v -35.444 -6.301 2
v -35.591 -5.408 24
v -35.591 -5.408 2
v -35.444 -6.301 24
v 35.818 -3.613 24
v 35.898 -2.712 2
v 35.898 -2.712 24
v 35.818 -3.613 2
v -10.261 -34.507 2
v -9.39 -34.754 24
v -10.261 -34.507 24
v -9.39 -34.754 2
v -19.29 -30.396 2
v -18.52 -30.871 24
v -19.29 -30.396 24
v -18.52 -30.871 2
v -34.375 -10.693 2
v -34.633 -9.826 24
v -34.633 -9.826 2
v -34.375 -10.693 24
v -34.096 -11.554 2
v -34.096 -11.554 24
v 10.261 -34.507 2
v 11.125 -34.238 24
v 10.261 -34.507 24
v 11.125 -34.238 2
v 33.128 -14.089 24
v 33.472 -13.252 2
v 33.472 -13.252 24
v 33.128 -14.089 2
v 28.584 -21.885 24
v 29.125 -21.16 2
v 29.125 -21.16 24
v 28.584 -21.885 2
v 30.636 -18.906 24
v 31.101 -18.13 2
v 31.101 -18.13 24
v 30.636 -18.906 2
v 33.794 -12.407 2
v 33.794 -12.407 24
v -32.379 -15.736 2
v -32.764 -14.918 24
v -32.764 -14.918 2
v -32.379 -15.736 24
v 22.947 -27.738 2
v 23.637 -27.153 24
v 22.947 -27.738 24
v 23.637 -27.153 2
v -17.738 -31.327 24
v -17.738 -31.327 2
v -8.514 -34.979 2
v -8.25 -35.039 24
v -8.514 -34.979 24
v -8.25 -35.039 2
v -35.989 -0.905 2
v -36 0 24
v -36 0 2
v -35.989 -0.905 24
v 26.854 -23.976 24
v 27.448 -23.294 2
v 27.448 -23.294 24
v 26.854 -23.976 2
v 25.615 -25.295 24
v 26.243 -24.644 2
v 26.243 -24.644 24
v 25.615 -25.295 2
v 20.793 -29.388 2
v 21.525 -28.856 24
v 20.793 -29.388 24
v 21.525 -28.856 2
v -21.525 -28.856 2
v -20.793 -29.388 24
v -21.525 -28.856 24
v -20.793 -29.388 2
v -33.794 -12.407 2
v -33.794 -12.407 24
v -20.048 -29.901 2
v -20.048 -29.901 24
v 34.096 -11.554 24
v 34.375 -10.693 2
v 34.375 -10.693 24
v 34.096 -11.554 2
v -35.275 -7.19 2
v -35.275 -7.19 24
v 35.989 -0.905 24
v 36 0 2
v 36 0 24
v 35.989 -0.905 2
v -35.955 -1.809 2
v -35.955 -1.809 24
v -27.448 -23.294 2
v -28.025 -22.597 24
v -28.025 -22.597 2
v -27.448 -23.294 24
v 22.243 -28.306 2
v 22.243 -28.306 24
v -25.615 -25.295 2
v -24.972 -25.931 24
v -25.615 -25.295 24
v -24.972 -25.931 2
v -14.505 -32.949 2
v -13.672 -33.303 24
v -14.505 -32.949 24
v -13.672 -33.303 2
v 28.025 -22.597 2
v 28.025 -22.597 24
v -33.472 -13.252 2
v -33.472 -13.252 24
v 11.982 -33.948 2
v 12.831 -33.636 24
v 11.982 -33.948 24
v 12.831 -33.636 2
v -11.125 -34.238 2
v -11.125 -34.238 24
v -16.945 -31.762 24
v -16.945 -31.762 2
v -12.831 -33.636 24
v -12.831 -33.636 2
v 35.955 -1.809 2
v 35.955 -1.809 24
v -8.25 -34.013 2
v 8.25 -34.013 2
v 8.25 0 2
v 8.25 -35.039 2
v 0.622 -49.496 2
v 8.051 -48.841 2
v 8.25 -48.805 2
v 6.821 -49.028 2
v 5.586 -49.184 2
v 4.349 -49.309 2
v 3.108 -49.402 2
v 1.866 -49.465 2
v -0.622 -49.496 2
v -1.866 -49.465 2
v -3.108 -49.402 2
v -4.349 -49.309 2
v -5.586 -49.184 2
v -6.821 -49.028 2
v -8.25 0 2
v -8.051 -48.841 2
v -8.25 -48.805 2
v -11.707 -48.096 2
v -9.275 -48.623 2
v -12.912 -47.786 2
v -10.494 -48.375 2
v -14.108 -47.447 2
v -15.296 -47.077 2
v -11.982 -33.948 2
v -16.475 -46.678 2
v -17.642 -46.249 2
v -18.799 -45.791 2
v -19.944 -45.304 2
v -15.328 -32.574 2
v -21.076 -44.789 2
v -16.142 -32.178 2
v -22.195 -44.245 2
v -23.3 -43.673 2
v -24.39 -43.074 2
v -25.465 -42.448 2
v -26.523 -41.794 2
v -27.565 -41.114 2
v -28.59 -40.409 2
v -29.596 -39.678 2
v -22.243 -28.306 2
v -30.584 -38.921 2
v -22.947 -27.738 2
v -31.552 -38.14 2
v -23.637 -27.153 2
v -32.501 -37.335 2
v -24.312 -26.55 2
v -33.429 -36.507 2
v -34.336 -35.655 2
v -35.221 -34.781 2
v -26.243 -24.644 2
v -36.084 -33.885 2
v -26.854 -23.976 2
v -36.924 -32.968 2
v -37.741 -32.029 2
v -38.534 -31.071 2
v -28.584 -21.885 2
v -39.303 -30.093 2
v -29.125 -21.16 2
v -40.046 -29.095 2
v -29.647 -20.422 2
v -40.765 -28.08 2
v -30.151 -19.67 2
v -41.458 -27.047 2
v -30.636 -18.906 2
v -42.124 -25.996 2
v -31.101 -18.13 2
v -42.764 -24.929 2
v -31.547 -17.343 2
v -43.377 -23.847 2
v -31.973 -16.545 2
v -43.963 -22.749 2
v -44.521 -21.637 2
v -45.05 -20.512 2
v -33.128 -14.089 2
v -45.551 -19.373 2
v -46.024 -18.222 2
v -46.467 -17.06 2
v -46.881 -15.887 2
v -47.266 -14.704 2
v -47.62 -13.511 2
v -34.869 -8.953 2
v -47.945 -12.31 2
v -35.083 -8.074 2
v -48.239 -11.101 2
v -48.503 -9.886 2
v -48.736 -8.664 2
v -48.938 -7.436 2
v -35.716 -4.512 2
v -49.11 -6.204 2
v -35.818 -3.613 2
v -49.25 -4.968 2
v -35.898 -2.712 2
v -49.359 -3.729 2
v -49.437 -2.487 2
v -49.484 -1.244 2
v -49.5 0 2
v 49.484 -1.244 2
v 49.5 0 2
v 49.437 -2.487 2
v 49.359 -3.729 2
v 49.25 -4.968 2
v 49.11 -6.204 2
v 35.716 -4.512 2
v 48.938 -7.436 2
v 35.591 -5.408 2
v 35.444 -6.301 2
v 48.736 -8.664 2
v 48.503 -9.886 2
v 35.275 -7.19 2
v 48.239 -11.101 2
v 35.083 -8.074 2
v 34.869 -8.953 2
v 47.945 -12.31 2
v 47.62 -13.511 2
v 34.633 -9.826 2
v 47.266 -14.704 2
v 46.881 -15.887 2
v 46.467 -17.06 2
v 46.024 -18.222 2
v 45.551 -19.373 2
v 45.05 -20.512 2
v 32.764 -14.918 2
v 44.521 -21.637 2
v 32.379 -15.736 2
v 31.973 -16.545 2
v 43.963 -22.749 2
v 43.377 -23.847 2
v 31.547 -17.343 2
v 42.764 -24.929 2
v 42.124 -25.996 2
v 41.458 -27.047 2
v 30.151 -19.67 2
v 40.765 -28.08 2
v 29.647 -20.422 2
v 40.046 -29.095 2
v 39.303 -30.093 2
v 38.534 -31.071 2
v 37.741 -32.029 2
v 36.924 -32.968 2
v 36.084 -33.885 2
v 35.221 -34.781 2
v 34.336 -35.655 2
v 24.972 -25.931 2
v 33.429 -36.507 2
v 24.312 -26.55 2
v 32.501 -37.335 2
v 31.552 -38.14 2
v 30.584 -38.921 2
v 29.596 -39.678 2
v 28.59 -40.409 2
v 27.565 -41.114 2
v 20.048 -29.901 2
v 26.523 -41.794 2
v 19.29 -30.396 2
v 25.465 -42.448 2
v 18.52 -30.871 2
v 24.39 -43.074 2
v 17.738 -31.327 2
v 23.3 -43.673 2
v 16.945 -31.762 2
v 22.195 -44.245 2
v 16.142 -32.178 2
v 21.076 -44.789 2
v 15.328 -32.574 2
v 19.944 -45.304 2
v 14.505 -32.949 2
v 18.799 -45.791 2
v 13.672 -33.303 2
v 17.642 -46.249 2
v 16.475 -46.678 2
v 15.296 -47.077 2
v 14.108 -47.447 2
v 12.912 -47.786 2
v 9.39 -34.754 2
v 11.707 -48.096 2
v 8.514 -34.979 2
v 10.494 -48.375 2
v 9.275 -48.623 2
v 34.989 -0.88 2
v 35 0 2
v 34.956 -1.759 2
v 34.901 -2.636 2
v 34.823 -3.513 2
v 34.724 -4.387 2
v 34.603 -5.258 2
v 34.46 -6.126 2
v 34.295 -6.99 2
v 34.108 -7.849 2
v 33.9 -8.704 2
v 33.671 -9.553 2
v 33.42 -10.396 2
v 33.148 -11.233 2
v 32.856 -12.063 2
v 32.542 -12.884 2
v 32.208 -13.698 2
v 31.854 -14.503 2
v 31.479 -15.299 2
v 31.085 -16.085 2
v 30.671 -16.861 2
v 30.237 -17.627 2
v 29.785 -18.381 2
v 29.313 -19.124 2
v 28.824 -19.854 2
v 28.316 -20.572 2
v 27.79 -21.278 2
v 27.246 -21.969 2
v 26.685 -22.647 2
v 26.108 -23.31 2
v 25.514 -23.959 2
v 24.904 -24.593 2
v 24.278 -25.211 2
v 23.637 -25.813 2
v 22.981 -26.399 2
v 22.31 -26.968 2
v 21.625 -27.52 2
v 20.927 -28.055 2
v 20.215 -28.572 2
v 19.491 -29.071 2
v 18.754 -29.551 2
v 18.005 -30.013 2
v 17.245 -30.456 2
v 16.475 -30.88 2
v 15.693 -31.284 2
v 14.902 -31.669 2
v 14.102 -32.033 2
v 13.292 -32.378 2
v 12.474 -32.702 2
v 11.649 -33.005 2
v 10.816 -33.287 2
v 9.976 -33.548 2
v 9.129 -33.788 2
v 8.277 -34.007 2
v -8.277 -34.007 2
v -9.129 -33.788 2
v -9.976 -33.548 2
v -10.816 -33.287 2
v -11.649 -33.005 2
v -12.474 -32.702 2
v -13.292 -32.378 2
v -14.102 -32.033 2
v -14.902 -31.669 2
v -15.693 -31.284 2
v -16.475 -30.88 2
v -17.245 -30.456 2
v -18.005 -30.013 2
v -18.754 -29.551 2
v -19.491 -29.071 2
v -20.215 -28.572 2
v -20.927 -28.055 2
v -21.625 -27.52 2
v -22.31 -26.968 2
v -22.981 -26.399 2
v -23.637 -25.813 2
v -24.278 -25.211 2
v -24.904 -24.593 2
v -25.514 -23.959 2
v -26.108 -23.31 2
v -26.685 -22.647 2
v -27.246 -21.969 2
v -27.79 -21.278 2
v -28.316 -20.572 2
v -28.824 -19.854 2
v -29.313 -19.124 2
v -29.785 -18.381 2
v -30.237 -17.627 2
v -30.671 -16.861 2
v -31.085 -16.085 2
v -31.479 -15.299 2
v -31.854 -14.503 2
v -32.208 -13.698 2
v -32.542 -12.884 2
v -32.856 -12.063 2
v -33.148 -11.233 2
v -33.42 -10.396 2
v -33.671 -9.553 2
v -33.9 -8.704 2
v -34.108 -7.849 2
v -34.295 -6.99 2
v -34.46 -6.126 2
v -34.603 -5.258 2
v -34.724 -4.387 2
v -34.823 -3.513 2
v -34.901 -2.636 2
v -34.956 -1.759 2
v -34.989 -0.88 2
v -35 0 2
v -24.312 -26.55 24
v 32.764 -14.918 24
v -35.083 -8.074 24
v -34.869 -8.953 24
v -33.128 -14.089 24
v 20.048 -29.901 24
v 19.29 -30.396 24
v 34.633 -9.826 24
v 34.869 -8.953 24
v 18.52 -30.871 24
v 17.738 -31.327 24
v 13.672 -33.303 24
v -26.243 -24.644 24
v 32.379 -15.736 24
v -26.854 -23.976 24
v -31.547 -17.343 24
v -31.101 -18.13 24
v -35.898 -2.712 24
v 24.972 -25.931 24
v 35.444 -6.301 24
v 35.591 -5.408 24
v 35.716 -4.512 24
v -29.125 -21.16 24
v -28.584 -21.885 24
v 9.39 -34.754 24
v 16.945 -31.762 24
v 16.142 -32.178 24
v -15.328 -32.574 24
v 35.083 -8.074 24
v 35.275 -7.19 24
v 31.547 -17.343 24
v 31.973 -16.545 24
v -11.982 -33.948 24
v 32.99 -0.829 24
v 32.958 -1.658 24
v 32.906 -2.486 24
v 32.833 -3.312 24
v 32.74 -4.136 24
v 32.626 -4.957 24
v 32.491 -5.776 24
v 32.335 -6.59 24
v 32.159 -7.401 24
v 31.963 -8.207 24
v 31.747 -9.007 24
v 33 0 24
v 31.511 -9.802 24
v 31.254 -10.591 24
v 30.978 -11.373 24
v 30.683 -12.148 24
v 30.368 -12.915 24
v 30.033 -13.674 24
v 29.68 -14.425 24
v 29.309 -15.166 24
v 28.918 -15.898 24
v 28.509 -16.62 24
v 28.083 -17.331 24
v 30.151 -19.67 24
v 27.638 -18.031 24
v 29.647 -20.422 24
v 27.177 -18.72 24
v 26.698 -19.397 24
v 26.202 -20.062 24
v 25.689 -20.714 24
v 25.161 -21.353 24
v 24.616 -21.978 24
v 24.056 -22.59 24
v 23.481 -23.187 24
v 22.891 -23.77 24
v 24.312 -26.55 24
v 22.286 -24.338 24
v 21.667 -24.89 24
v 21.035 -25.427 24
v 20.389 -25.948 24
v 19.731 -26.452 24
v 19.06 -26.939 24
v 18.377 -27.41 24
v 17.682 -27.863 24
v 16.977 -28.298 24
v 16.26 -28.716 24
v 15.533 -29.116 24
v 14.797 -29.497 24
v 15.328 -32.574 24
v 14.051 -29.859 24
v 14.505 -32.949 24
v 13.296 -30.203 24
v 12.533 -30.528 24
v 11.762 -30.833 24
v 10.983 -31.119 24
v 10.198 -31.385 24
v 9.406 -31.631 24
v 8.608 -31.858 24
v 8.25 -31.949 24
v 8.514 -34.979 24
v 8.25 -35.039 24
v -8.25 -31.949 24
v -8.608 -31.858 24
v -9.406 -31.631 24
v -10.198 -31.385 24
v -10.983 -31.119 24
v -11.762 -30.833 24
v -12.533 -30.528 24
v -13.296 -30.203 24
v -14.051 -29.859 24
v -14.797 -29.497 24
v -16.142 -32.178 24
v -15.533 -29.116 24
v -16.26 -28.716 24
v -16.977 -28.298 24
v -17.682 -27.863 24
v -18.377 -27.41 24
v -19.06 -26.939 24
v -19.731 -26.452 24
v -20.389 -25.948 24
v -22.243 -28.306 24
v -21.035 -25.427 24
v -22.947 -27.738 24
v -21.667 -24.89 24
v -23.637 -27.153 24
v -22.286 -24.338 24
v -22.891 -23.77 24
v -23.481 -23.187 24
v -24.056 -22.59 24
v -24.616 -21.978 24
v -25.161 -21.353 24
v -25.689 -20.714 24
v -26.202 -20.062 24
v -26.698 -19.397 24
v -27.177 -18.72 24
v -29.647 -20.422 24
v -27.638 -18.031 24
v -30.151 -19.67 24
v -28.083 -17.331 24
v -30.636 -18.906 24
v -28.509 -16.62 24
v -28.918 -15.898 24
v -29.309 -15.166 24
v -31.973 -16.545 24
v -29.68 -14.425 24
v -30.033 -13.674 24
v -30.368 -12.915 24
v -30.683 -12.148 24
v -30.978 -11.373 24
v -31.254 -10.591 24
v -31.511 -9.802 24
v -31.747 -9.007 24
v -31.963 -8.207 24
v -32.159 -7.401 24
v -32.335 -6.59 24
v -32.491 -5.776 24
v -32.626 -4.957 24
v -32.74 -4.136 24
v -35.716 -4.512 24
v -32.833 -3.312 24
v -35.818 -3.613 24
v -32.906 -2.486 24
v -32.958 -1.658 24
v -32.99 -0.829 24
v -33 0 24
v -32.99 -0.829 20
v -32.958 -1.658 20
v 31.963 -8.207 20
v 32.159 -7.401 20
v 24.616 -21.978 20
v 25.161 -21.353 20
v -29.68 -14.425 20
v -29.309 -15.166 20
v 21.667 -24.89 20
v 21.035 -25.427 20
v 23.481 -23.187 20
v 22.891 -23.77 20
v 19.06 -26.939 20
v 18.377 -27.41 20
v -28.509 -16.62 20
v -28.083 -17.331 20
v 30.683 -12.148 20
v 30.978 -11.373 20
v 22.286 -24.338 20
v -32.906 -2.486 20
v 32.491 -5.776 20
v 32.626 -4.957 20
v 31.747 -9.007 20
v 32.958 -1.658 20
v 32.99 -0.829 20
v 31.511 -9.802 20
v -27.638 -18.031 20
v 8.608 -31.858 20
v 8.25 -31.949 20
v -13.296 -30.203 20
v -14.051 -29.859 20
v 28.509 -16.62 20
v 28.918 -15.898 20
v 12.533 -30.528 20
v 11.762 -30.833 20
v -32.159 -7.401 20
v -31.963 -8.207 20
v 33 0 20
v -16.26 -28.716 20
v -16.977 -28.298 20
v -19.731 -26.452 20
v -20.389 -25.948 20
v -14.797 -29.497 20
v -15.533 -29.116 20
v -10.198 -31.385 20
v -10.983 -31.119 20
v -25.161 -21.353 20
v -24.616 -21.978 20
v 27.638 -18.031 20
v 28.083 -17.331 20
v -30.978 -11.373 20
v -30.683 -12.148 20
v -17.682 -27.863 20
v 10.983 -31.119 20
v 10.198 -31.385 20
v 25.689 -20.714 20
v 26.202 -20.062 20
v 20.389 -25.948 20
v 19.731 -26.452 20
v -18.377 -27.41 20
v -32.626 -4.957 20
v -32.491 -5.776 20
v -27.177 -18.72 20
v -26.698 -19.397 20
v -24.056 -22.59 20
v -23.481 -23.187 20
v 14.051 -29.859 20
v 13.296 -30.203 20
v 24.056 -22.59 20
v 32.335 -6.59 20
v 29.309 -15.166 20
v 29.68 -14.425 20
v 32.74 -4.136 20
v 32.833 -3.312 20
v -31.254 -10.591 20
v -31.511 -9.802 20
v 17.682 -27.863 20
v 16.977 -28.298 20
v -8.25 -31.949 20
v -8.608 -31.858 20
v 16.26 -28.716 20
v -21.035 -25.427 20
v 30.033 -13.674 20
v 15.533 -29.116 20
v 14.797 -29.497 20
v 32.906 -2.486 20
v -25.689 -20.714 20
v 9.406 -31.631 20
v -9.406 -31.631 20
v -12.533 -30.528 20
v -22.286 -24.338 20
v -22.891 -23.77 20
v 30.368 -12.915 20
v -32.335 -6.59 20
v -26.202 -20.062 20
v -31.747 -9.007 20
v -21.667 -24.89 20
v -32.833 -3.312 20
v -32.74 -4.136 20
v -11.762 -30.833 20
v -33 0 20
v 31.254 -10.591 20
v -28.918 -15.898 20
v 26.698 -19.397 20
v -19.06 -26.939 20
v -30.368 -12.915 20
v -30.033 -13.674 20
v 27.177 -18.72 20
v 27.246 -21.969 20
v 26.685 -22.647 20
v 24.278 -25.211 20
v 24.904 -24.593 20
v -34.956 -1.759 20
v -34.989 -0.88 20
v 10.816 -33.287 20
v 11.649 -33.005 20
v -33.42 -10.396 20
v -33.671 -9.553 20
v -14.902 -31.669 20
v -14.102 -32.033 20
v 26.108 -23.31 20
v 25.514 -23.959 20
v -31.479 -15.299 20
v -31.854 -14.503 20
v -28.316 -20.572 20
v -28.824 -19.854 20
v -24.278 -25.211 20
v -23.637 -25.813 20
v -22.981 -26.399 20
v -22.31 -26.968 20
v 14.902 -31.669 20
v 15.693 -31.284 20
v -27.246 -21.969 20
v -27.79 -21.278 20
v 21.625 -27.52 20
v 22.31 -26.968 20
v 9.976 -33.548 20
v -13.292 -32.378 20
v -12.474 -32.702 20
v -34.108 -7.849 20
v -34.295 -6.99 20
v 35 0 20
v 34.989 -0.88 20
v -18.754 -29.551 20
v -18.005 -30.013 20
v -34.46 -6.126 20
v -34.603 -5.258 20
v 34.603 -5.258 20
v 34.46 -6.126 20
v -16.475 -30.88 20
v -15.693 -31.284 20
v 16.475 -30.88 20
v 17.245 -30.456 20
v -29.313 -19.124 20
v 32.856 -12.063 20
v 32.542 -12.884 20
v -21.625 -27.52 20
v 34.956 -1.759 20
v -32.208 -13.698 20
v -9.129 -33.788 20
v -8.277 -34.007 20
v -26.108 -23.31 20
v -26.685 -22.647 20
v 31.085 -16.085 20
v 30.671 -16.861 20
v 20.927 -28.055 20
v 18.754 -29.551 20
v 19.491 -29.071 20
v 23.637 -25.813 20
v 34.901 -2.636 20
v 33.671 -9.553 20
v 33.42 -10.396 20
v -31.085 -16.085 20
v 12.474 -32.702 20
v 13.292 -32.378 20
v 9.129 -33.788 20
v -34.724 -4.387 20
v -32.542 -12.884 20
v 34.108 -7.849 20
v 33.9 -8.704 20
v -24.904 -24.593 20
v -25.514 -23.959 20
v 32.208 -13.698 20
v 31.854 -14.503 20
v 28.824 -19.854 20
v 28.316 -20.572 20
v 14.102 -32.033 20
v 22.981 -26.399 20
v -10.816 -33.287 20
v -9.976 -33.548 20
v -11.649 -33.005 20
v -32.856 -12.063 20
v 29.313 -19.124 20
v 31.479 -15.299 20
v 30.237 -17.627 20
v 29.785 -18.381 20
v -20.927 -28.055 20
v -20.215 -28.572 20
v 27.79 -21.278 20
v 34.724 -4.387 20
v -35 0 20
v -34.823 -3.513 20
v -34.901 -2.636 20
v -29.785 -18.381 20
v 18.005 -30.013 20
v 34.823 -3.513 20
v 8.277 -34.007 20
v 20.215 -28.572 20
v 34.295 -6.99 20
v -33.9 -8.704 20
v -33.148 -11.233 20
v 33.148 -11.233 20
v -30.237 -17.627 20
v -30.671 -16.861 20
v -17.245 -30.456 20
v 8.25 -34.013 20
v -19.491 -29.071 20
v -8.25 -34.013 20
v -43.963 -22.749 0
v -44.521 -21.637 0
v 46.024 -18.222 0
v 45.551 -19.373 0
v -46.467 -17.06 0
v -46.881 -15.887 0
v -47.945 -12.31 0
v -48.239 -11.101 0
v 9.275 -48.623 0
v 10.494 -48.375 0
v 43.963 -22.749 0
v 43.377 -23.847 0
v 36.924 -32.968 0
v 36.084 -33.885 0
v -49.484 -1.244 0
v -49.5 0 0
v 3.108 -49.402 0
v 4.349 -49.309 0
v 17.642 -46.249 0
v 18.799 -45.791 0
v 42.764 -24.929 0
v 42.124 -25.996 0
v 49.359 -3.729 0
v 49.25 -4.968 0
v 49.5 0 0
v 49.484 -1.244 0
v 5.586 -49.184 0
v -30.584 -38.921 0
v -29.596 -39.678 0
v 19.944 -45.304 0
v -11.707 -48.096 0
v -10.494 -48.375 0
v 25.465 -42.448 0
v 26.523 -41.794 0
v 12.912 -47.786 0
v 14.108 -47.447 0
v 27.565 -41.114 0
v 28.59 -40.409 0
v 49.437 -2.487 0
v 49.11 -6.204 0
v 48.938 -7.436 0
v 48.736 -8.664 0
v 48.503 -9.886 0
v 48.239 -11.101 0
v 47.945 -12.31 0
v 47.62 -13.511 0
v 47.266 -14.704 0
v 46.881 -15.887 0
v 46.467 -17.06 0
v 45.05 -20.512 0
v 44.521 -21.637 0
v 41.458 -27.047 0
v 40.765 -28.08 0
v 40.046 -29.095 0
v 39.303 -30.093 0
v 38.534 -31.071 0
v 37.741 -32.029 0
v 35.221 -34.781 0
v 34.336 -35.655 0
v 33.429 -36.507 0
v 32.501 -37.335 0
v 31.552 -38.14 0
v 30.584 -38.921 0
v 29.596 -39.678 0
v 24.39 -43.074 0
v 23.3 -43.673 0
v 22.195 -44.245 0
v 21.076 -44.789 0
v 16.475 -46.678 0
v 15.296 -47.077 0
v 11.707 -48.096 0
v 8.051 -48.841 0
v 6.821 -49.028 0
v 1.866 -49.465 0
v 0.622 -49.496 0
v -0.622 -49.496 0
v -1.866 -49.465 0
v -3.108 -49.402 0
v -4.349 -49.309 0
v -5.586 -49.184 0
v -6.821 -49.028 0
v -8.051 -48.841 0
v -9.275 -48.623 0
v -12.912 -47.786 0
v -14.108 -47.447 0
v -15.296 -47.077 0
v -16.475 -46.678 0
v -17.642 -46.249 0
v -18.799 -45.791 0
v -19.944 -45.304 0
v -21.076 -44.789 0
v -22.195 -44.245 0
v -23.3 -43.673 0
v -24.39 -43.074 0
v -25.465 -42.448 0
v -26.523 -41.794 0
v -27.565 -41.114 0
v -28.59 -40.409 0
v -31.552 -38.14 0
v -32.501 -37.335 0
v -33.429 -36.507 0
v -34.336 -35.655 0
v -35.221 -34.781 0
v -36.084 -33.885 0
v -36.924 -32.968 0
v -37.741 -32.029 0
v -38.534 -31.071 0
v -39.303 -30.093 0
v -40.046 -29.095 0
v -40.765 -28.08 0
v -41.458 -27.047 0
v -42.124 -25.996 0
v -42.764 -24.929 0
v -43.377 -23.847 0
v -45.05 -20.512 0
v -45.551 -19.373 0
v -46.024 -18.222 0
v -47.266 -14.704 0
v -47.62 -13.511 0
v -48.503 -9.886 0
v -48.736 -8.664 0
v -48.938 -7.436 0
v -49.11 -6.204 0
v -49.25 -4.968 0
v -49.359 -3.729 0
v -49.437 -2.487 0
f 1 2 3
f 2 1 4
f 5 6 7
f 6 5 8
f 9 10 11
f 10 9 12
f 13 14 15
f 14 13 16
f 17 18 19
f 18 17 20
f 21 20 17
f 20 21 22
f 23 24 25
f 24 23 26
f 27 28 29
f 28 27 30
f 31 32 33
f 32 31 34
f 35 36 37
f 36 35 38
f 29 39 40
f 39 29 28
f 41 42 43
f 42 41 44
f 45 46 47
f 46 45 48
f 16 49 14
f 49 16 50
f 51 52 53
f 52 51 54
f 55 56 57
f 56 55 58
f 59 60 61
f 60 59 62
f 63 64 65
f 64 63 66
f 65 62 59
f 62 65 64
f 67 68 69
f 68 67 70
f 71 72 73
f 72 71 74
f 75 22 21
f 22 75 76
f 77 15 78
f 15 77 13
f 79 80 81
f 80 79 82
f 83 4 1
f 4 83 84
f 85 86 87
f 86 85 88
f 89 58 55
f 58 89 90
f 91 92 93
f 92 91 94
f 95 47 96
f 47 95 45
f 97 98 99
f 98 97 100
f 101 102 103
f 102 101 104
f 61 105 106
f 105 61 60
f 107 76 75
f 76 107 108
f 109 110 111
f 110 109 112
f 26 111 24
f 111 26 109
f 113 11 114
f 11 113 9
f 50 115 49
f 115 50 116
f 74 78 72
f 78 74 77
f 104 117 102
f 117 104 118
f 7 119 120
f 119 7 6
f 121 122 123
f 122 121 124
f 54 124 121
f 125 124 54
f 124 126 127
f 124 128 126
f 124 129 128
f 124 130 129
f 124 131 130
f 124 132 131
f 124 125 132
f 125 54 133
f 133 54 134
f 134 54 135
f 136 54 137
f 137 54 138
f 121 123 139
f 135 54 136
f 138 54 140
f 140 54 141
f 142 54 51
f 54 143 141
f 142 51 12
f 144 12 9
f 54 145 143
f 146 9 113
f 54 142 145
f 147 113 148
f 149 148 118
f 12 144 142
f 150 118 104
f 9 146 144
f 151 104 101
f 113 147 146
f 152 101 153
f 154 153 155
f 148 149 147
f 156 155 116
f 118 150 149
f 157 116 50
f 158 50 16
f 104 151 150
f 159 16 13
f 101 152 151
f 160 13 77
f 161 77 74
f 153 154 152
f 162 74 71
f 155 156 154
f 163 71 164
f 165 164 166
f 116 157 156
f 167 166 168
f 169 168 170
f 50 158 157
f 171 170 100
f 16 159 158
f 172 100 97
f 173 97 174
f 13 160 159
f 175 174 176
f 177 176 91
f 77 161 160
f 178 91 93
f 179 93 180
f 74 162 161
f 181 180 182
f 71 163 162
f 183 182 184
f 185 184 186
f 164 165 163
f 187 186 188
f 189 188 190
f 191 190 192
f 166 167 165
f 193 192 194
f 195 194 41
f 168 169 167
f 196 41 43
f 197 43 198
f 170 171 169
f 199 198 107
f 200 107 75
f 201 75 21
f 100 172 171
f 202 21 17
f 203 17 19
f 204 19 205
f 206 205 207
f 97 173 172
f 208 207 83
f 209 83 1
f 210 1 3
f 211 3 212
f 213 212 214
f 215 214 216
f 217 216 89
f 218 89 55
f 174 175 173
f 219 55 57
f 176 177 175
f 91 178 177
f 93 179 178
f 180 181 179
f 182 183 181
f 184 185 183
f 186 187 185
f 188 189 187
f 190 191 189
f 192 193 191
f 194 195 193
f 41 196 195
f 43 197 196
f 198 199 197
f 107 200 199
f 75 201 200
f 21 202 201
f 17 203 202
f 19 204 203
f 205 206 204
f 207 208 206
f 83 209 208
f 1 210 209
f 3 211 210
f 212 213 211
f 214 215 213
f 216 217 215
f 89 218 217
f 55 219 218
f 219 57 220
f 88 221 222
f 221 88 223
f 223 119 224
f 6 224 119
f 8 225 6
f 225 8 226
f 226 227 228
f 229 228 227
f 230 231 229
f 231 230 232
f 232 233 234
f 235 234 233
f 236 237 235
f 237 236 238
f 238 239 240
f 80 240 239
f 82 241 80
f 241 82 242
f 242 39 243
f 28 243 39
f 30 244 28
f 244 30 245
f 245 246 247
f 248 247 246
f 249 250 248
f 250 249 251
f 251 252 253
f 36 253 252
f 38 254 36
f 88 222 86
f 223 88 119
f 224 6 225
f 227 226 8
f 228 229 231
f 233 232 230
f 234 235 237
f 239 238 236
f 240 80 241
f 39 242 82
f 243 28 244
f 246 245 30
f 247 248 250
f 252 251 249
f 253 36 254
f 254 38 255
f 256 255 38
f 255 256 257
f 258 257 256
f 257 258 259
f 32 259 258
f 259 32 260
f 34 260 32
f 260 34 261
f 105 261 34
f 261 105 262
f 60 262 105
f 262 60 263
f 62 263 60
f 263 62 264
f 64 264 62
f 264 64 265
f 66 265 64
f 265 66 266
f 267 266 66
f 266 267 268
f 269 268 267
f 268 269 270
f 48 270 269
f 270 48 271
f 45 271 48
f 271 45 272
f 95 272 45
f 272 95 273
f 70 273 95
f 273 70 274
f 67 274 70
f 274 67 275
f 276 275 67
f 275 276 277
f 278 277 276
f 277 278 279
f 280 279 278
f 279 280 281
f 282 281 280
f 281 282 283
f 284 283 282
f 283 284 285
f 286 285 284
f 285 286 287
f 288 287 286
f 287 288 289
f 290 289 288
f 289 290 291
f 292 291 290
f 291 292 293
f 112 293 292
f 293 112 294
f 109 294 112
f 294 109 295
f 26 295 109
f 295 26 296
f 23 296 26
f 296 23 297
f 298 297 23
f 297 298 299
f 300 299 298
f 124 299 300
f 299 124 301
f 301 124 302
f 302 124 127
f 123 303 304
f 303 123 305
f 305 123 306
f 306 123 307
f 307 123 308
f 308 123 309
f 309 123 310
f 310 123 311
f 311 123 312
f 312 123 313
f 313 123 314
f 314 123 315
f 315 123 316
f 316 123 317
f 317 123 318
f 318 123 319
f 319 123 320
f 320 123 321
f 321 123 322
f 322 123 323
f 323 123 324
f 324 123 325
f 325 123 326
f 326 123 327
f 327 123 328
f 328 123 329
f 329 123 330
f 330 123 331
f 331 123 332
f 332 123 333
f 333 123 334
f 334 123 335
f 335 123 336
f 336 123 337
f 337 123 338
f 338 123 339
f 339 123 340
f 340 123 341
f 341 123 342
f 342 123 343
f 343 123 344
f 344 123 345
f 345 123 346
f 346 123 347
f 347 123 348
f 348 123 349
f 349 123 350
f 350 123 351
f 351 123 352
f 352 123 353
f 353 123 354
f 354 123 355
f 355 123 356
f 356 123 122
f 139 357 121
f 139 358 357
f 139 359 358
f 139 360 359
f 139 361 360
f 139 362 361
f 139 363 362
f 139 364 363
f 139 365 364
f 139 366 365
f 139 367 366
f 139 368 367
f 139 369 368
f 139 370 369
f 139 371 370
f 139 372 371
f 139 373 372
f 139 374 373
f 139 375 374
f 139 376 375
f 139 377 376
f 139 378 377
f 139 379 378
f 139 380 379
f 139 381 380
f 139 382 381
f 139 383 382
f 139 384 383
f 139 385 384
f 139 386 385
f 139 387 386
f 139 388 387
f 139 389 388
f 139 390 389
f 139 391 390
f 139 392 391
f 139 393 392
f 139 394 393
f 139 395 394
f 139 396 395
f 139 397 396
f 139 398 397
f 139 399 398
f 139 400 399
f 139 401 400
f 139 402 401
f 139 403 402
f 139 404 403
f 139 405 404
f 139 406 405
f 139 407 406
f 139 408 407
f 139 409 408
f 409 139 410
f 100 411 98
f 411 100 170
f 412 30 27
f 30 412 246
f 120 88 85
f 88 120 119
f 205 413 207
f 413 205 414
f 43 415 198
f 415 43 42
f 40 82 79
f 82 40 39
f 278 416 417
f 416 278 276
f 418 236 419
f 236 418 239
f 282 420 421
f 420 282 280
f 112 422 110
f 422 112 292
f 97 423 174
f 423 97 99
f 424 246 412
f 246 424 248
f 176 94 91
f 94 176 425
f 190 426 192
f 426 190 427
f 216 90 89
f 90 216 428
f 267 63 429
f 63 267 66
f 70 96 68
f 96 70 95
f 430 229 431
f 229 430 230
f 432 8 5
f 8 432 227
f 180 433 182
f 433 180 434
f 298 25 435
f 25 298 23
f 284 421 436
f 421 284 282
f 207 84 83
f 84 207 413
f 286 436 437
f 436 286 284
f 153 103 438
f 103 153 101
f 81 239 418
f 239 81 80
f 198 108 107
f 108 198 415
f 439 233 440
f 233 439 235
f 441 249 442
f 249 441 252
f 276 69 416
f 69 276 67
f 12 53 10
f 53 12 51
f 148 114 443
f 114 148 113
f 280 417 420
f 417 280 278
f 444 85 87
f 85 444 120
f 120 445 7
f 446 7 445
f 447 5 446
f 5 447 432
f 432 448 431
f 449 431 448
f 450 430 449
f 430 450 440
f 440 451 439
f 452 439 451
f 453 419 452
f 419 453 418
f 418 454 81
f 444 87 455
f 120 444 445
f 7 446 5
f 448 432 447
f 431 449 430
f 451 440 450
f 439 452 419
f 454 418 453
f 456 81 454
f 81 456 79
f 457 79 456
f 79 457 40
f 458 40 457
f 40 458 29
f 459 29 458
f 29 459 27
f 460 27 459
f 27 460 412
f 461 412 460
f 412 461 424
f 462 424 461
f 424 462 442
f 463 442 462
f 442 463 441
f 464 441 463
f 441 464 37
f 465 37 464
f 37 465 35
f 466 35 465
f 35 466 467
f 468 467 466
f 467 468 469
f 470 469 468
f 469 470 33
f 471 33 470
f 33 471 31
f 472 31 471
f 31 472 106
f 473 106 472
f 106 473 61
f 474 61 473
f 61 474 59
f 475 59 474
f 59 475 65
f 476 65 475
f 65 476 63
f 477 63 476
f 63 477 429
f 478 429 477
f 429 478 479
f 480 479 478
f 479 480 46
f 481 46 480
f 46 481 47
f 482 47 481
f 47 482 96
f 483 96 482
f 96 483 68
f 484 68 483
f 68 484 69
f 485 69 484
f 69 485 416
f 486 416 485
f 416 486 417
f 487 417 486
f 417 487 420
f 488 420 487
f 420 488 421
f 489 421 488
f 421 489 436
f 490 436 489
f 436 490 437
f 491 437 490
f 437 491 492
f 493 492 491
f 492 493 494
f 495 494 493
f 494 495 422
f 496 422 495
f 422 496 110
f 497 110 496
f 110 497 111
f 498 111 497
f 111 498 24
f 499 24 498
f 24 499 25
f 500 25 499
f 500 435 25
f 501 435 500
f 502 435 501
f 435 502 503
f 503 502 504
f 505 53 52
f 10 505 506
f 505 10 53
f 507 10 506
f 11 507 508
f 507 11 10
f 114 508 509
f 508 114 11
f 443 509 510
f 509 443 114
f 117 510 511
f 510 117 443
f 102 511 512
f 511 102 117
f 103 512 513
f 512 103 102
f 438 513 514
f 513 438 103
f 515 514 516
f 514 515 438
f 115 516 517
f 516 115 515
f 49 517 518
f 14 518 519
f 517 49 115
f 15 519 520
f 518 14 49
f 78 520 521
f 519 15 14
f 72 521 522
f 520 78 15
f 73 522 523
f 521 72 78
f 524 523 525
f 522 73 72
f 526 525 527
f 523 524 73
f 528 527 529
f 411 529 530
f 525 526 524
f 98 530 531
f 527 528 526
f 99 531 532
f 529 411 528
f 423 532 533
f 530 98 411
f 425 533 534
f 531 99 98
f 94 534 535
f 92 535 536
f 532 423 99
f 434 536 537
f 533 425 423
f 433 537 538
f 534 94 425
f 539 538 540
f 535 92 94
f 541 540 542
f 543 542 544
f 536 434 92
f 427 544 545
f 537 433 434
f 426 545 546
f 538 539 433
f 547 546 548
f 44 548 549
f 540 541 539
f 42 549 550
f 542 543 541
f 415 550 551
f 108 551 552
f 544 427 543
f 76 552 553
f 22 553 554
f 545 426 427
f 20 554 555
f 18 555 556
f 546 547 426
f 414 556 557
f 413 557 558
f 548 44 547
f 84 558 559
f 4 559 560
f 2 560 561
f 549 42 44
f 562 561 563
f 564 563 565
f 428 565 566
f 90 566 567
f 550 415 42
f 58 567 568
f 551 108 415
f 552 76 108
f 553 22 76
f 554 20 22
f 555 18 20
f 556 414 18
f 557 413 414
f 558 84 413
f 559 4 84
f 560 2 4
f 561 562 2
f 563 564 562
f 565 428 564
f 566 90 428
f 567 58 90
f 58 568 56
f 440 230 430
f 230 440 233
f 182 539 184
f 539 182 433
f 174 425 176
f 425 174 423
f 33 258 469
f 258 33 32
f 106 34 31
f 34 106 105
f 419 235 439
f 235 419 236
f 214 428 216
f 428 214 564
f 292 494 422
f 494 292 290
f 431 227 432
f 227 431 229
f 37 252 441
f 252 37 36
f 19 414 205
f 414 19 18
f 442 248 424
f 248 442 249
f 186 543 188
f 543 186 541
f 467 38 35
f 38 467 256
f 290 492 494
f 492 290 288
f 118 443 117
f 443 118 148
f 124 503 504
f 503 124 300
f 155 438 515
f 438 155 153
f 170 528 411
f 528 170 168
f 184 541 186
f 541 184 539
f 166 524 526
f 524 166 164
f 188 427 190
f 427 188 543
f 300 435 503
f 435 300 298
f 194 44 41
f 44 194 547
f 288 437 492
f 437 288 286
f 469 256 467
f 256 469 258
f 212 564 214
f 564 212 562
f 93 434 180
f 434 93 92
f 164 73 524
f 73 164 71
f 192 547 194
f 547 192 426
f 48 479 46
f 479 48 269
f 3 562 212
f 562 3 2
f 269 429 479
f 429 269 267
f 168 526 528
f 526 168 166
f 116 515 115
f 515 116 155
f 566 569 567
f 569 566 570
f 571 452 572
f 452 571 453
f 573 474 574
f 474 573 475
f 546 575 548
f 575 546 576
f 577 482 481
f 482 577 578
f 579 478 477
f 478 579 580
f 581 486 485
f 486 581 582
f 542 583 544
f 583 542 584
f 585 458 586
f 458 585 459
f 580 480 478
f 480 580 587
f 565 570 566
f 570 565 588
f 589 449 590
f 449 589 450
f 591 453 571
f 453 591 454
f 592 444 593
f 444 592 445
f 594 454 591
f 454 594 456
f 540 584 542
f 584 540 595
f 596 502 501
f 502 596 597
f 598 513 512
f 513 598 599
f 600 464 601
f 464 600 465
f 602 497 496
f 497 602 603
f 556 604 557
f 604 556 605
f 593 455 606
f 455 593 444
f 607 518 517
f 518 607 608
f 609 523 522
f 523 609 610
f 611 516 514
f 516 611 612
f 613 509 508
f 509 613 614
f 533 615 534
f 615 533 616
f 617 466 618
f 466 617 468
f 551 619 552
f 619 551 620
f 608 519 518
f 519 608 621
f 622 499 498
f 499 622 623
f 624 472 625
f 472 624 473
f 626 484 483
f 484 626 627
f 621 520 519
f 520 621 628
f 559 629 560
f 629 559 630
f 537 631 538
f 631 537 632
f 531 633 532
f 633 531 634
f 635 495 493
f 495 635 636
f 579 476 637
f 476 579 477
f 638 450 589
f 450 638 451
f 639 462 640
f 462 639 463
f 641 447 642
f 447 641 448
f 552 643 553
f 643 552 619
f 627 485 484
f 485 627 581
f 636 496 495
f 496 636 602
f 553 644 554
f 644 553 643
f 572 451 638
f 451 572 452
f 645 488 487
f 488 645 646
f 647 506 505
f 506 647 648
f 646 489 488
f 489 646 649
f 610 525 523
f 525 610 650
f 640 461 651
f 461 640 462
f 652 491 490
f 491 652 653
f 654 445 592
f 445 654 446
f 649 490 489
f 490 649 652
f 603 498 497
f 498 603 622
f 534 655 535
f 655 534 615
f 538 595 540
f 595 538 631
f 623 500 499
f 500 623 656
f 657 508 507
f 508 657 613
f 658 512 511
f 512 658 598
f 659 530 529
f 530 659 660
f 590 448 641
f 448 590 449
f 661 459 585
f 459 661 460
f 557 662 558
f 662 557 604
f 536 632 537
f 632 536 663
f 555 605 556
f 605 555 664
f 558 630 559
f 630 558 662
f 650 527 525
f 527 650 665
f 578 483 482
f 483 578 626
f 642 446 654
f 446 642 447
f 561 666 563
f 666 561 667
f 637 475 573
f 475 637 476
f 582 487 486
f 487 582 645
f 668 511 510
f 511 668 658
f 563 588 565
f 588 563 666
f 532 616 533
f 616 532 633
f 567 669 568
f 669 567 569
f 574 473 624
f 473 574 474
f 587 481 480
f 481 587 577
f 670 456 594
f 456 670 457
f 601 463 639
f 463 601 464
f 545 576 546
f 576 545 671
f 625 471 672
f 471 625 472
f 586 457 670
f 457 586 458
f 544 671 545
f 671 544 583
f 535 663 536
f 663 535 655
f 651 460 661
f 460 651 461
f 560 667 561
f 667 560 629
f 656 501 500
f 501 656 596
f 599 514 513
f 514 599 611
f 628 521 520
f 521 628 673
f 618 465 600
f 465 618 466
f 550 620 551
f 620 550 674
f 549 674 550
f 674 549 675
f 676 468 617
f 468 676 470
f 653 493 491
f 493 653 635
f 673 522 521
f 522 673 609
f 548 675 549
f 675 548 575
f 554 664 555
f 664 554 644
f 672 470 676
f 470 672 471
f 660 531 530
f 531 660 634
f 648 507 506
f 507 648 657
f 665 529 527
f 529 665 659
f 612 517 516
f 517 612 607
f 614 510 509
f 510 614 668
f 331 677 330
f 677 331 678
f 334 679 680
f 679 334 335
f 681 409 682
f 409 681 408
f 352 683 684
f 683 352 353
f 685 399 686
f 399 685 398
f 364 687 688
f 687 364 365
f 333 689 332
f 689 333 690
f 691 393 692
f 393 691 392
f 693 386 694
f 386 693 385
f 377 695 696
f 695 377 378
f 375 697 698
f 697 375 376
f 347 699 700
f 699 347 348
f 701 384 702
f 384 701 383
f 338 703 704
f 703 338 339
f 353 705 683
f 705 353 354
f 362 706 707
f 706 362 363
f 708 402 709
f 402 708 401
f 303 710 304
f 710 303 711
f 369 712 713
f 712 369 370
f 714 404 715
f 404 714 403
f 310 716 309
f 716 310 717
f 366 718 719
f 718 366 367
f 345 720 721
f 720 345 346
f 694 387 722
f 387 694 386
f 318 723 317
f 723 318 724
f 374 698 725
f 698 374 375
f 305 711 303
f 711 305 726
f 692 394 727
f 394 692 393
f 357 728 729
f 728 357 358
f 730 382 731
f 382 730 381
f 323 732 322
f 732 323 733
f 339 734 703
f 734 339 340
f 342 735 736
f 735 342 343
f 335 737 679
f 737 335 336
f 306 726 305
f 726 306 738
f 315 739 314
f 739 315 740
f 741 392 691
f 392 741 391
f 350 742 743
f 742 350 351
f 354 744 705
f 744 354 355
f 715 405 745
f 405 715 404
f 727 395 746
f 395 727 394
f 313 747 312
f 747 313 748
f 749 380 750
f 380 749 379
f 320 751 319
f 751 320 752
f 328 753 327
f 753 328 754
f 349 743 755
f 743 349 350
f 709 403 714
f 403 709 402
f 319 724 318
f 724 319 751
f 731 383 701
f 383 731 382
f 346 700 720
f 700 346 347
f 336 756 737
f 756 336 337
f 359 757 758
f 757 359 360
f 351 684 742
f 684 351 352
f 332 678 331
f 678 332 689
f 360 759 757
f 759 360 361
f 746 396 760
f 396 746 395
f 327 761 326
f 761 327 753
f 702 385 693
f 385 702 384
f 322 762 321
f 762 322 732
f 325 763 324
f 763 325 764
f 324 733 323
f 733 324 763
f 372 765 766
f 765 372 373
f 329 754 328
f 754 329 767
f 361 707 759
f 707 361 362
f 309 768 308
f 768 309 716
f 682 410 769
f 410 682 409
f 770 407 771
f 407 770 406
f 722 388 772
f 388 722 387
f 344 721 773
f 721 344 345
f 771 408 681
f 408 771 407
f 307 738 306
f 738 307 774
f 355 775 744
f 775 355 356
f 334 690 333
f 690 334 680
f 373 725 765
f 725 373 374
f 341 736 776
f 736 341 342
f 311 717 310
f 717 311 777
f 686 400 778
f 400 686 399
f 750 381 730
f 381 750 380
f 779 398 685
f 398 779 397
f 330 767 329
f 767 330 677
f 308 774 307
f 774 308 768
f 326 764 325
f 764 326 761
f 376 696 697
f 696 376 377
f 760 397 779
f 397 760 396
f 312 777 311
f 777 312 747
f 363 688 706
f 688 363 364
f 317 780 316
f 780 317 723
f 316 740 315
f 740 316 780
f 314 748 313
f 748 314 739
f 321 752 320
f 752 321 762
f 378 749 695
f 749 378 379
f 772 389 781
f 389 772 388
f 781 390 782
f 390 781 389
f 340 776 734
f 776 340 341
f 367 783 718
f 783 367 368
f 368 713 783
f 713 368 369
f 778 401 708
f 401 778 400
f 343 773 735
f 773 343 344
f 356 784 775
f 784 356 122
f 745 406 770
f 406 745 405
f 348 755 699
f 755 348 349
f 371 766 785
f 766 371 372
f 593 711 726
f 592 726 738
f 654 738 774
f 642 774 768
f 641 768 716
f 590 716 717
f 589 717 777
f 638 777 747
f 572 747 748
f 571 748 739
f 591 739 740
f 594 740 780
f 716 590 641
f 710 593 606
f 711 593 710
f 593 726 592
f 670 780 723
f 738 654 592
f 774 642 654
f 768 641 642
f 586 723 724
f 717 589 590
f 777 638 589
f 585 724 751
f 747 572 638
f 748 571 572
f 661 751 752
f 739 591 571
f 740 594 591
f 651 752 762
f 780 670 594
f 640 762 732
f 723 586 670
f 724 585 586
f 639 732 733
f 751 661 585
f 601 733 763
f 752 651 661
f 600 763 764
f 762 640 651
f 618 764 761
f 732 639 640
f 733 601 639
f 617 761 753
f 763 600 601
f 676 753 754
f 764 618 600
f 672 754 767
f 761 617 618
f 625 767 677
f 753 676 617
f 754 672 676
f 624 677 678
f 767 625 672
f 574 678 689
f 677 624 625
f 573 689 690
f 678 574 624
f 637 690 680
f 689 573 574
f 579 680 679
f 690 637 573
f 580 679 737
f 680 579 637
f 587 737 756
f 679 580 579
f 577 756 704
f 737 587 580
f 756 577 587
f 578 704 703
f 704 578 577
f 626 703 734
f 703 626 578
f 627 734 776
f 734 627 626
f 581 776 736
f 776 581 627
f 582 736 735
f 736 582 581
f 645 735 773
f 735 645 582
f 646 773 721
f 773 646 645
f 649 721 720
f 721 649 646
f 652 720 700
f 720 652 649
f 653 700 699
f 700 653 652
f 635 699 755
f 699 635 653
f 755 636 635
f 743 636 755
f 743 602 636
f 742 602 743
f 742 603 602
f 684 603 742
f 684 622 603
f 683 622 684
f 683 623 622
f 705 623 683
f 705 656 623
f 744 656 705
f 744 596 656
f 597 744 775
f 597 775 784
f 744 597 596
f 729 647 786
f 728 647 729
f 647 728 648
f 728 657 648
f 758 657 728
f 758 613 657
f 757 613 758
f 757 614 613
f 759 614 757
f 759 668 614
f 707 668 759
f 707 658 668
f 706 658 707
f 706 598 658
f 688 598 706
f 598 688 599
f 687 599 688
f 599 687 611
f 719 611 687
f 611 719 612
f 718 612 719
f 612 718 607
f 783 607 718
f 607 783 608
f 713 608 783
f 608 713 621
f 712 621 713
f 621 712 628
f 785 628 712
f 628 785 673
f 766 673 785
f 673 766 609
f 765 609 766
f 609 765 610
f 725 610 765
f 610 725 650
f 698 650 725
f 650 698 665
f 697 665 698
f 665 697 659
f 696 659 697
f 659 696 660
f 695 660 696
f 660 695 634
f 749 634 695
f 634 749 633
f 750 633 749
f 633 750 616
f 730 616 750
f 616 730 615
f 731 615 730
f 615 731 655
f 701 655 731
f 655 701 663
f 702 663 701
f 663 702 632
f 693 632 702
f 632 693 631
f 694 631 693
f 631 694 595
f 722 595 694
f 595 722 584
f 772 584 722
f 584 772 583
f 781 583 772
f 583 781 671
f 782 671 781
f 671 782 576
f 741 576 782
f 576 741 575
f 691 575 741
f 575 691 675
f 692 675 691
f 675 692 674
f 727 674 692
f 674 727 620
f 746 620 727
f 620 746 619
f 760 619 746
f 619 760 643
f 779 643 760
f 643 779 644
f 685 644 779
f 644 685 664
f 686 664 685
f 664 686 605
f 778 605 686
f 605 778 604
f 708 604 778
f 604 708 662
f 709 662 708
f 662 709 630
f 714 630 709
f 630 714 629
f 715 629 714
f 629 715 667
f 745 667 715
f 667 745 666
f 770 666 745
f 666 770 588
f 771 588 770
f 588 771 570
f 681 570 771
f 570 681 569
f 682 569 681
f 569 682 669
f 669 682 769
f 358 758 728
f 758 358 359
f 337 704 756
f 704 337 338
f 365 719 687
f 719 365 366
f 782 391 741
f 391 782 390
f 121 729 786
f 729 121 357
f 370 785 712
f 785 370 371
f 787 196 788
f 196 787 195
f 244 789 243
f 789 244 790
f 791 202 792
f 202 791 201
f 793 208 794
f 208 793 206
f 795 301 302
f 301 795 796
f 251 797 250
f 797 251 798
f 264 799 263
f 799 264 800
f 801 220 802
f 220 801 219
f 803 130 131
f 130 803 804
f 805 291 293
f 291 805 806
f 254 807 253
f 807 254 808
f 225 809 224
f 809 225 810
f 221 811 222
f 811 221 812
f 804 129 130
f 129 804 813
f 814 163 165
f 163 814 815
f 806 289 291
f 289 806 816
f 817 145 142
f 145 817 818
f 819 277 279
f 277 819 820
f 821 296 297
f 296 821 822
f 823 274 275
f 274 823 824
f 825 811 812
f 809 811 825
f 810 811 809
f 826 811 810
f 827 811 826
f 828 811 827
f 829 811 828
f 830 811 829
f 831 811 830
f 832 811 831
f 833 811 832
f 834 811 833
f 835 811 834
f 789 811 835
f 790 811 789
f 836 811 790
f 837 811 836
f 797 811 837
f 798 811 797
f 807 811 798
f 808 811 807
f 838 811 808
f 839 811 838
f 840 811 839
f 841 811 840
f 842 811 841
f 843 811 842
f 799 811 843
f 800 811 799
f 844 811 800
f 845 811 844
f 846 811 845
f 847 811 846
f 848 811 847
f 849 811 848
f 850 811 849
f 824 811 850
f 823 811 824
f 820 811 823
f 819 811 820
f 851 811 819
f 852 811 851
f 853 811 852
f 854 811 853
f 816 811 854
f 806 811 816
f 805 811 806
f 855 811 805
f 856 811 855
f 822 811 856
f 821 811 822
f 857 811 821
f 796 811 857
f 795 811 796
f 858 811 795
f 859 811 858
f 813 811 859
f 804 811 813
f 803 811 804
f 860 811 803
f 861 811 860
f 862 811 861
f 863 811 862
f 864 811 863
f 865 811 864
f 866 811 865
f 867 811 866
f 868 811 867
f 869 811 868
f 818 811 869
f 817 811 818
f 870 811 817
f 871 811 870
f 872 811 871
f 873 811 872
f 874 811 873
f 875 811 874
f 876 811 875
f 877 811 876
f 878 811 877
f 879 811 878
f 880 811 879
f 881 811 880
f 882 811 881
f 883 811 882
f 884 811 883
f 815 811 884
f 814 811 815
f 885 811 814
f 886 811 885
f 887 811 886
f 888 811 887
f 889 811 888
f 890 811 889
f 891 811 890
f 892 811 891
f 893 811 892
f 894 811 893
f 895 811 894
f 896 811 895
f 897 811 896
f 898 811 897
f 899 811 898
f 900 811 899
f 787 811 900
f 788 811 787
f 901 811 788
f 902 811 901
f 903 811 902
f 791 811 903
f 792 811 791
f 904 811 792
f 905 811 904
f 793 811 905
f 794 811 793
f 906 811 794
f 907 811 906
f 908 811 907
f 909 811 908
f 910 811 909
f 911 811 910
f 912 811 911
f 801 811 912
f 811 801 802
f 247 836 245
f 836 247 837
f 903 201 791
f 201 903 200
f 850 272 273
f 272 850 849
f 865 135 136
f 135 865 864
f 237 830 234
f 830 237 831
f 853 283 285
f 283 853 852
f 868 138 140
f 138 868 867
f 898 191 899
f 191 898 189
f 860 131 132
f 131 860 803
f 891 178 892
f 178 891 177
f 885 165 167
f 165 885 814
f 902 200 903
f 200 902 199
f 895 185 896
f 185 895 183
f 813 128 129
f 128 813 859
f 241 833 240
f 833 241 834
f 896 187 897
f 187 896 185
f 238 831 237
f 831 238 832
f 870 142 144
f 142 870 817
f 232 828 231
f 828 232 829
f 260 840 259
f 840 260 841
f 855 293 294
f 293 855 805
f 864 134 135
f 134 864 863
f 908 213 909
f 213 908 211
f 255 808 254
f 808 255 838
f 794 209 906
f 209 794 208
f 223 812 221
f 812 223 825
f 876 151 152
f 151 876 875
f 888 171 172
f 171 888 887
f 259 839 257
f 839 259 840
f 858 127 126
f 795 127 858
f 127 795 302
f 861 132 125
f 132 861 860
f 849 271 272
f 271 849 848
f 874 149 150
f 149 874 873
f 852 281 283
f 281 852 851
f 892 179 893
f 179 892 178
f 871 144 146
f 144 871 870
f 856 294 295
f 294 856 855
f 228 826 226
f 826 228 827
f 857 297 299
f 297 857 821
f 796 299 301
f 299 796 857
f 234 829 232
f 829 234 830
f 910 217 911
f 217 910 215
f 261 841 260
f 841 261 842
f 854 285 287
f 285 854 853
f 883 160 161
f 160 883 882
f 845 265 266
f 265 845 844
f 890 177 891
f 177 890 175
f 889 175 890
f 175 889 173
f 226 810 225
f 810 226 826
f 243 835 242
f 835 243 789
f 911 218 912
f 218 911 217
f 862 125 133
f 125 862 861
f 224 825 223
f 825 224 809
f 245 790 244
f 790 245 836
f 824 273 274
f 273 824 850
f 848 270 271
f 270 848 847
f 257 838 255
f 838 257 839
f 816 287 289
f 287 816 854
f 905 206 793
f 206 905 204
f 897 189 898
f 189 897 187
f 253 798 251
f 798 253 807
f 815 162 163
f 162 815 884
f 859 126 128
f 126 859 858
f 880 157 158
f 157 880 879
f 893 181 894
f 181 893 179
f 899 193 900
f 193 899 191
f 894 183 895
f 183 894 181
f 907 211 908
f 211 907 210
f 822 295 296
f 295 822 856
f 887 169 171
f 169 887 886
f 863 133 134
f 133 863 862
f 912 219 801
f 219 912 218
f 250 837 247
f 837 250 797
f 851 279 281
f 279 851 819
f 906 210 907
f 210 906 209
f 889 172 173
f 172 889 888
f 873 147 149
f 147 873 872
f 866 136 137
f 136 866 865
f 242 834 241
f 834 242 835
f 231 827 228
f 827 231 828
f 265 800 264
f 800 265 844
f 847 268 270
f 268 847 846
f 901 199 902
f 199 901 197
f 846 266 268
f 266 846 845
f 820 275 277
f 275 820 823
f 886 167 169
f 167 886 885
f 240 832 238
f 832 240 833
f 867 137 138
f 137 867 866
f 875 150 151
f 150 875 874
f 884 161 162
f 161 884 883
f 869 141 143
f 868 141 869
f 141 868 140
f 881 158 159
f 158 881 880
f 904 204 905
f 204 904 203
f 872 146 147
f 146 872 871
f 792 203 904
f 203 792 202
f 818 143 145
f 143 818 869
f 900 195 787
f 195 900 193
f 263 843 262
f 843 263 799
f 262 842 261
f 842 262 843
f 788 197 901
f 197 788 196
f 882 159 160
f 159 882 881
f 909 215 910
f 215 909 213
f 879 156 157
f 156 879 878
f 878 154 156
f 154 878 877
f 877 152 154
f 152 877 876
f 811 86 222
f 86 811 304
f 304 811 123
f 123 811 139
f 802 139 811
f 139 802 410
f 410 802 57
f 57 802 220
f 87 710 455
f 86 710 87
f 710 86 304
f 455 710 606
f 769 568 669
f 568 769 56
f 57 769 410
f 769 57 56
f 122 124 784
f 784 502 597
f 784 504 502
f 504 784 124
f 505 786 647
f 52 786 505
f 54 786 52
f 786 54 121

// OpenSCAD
$fn = 250;

SPEAKER_BIG_DIA = 66;
SPEAKER_SMALL_DIA = 32;
SPEAKER_FULL_HEIGHT = 18;
SPEAKER_SMALL_HEIGHT = 9;
WALL = 2;

difference()
{
union()
{
	cylinder(h = WALL, d = SPEAKER_BIG_DIA*1.5,center =false);

	translate([0,0,WALL])difference()
	{
		cylinder(h = SPEAKER_FULL_HEIGHT+2*WALL, d = SPEAKER_BIG_DIA+3*WALL,center =false);
		cylinder(h = SPEAKER_FULL_HEIGHT+2*WALL, d = SPEAKER_BIG_DIA,center =false);
		cylinder(h = SPEAKER_FULL_HEIGHT, d = SPEAKER_BIG_DIA+2*WALL,center =false);	
	}	
}
	translate([-SPEAKER_BIG_DIA,0,0])cube(2*SPEAKER_BIG_DIA);
	translate([-SPEAKER_BIG_DIA/8,-SPEAKER_BIG_DIA,WALL])cube([SPEAKER_BIG_DIA/4,SPEAKER_BIG_DIA,SPEAKER_FULL_HEIGHT+2*WALL]);
}
